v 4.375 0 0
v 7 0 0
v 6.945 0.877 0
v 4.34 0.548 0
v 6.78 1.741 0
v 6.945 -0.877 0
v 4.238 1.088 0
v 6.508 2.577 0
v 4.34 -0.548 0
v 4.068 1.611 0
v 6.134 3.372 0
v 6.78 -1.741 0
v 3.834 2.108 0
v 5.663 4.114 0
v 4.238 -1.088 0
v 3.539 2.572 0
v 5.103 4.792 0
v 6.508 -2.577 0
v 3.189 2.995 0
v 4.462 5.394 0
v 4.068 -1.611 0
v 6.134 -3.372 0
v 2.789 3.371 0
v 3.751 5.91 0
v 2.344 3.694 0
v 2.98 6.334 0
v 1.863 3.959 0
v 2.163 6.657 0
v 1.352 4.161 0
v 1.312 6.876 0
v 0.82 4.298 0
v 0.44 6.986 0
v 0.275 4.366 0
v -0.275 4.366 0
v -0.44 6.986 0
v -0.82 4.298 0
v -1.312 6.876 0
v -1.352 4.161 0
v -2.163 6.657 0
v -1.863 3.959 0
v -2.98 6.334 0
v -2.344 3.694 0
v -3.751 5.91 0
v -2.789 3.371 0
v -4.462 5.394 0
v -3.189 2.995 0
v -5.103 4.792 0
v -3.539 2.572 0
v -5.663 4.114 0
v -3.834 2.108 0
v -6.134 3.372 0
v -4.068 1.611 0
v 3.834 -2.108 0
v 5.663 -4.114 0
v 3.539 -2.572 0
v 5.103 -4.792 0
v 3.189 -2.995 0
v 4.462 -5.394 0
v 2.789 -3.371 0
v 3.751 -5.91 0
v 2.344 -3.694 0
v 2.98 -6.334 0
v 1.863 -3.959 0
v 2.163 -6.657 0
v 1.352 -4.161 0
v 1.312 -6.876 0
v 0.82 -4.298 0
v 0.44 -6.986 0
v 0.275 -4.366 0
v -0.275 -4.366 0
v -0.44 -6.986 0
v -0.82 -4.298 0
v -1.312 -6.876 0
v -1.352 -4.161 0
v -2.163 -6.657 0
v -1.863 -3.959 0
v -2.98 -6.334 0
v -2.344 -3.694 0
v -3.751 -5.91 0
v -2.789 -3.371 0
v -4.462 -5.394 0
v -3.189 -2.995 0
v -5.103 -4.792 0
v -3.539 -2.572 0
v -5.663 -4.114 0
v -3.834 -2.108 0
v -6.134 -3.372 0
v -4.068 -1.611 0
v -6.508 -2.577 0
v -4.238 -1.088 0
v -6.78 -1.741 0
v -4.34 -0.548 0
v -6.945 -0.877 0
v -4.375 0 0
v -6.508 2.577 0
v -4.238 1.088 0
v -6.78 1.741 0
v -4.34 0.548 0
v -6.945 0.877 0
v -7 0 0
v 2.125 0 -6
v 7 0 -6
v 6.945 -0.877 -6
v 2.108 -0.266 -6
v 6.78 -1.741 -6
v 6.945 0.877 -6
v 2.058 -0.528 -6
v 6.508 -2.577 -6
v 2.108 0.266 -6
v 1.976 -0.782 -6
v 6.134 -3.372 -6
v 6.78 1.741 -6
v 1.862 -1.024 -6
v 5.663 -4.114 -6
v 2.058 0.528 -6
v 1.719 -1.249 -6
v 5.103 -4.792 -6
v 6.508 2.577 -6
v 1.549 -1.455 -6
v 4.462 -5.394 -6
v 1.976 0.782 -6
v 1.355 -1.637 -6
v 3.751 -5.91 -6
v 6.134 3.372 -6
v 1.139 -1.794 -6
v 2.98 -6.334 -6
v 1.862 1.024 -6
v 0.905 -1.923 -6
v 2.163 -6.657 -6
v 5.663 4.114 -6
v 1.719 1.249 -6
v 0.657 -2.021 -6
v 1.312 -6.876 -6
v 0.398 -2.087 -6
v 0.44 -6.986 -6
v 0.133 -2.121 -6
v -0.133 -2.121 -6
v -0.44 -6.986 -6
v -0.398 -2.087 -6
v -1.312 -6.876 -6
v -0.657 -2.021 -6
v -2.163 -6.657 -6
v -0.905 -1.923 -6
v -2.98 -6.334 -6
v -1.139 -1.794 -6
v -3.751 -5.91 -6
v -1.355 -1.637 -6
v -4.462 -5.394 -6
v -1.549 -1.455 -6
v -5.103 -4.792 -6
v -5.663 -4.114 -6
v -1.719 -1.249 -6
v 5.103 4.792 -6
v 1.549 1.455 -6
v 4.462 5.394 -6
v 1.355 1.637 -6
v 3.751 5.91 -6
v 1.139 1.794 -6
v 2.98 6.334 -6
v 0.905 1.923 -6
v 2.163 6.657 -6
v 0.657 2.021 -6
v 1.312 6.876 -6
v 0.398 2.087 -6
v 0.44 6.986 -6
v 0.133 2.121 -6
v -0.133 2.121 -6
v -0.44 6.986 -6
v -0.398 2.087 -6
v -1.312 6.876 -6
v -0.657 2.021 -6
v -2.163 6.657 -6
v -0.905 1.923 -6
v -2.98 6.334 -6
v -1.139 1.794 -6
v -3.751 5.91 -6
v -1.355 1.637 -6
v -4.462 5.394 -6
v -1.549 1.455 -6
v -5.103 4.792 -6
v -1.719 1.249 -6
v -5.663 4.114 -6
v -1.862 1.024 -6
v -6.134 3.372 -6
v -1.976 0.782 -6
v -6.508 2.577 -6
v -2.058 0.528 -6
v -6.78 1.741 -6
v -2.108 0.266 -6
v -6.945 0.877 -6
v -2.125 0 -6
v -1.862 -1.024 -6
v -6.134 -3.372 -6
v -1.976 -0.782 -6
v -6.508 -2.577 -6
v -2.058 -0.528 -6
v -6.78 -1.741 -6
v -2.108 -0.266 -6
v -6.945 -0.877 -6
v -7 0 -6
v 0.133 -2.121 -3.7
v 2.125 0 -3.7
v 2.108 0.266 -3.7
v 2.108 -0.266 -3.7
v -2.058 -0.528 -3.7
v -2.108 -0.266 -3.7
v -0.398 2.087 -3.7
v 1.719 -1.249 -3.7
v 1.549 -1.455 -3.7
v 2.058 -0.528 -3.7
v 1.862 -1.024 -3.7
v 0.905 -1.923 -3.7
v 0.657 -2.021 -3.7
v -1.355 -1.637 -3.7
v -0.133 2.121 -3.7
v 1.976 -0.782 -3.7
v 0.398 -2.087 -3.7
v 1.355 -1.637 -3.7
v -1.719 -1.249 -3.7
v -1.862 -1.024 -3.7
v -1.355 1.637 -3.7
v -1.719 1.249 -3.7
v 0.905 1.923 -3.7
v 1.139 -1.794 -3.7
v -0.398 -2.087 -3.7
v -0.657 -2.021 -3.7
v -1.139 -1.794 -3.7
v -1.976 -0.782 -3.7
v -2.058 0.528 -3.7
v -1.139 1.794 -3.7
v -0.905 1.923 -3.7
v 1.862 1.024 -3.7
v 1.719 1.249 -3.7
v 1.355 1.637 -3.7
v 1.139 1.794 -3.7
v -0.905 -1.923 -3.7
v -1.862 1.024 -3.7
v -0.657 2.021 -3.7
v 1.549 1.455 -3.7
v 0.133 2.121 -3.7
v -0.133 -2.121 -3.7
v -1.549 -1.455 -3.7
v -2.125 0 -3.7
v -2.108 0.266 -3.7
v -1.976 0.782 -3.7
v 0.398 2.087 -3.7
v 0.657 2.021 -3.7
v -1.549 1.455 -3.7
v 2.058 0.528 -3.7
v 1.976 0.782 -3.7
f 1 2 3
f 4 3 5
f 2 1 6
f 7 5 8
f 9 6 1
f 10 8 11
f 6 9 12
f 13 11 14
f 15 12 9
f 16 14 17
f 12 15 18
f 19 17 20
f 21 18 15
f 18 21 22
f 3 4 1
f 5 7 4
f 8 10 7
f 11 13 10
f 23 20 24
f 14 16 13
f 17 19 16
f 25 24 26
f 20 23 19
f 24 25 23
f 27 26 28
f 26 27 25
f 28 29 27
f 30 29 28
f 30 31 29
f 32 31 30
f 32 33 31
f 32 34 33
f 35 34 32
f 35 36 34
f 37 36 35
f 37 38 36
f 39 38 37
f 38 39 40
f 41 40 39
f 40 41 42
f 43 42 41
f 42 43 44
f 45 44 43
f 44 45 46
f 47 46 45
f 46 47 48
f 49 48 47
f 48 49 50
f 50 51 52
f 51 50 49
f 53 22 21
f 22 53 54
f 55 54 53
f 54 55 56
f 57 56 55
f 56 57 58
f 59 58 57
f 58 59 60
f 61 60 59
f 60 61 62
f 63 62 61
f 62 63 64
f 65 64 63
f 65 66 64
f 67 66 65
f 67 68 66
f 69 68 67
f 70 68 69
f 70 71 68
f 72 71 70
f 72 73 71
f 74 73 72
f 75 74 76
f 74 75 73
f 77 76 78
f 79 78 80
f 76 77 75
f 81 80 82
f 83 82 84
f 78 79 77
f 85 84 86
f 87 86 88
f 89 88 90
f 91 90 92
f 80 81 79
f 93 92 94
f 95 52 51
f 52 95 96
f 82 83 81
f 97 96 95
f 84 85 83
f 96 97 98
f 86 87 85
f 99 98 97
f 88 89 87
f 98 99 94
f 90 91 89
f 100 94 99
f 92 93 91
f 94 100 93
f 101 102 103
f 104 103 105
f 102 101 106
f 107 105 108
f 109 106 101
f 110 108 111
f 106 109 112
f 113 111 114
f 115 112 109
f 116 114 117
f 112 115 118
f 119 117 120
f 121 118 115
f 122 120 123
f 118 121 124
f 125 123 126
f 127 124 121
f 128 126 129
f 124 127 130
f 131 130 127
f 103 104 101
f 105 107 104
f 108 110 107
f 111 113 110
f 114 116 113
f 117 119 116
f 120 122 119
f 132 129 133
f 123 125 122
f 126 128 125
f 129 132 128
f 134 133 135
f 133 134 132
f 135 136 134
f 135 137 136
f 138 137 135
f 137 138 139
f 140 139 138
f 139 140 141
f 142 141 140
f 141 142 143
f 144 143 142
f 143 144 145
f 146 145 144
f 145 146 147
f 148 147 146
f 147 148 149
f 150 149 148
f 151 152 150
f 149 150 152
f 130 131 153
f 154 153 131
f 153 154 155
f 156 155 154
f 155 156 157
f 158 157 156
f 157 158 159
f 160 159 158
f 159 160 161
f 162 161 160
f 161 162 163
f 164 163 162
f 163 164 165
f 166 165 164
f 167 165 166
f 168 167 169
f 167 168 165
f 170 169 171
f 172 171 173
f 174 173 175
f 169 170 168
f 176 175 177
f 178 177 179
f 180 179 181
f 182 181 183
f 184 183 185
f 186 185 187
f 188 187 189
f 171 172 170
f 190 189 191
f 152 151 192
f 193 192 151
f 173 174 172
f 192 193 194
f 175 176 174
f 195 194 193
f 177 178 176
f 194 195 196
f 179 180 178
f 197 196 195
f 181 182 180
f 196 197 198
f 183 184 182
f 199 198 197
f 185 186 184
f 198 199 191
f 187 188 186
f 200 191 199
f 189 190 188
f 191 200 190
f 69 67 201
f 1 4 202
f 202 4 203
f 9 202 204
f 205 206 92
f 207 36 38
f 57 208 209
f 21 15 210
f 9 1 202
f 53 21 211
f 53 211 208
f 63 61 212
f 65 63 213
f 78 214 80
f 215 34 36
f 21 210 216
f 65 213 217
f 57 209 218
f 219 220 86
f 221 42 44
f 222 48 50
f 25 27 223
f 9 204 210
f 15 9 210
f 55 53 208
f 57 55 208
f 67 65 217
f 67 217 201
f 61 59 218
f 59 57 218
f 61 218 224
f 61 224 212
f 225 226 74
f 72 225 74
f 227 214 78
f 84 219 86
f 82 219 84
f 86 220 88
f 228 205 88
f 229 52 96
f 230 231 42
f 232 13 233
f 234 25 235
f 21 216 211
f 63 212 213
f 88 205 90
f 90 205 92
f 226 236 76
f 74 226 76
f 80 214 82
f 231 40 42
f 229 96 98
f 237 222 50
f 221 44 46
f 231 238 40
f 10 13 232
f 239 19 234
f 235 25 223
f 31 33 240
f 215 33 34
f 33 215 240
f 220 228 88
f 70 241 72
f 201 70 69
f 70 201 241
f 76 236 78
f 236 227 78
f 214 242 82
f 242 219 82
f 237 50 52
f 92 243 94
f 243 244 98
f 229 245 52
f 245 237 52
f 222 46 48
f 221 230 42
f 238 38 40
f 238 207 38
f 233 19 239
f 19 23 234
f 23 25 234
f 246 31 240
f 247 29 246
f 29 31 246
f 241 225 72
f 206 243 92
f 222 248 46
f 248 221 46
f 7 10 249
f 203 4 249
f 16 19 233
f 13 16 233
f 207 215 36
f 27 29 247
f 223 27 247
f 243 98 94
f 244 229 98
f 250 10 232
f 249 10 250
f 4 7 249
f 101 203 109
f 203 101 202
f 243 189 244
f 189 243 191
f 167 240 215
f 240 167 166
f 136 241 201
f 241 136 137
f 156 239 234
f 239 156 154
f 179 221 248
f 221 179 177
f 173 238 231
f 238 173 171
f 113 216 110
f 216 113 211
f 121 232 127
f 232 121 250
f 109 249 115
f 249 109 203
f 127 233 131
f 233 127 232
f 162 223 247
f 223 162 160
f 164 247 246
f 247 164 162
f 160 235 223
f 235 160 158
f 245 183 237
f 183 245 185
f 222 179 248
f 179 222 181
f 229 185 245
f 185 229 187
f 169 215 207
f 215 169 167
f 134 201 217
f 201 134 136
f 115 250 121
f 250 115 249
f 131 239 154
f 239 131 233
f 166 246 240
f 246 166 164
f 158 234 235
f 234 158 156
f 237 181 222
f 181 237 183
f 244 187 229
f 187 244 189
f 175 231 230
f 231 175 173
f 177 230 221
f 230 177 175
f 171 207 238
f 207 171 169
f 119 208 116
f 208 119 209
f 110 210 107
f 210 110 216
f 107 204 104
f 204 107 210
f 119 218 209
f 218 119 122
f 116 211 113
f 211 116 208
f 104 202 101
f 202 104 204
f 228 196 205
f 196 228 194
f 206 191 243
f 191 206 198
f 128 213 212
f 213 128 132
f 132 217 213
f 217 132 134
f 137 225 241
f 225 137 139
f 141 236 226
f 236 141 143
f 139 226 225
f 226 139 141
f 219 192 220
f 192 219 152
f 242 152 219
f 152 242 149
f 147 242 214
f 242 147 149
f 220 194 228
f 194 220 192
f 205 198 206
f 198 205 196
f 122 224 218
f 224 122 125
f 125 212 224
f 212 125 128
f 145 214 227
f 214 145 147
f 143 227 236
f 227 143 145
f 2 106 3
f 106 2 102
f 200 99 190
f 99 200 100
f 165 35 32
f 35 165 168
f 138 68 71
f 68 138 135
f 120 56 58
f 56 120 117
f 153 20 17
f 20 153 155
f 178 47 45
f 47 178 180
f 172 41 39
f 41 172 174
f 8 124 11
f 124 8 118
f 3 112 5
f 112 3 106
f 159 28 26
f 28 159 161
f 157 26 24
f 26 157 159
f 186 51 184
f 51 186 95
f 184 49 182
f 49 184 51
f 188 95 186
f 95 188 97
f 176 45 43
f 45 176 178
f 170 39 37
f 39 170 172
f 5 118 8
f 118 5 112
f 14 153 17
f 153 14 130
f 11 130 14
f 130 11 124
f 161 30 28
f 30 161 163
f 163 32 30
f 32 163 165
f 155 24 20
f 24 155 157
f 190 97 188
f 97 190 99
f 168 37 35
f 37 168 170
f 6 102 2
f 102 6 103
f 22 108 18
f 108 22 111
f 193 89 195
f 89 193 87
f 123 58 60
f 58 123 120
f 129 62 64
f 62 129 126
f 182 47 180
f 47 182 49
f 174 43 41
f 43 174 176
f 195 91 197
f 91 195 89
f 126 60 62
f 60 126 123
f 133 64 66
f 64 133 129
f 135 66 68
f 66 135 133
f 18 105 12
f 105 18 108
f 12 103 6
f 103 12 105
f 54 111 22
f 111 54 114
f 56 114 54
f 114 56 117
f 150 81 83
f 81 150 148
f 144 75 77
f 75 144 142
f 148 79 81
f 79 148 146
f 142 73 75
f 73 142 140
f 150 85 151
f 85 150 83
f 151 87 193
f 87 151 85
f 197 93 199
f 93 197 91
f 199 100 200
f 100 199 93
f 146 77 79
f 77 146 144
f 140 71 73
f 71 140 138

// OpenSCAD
$fn = 50;


difference() {
	union() {
		translate(v = [0, 0, -6.0000000000]) {
			cylinder(h = 6, r = 7.0000000000);
		}
	}
	union() {
		translate(v = [0, 0, 0]) {
			rotate(a = [0, 0, 0]) {
				difference() {
					union() {
						translate(v = [0, 0, -6.0000000000]) {
							cylinder(h = 6, r = 2.0000000000);
						}
						translate(v = [0, 0, -3.7000000000]) {
							cylinder(h = 3.7000000000, r1 = 2.1250000000, r2 = 4.3750000000);
						}
						translate(v = [0, 0, -6.0000000000]) {
							cylinder(h = 6, r = 2.1250000000);
						}
						translate(v = [0, 0, -6.0000000000]) {
							cylinder(h = 6, r = 2.0000000000);
						}
					}
					union();
				}
			}
		}
	}
}
